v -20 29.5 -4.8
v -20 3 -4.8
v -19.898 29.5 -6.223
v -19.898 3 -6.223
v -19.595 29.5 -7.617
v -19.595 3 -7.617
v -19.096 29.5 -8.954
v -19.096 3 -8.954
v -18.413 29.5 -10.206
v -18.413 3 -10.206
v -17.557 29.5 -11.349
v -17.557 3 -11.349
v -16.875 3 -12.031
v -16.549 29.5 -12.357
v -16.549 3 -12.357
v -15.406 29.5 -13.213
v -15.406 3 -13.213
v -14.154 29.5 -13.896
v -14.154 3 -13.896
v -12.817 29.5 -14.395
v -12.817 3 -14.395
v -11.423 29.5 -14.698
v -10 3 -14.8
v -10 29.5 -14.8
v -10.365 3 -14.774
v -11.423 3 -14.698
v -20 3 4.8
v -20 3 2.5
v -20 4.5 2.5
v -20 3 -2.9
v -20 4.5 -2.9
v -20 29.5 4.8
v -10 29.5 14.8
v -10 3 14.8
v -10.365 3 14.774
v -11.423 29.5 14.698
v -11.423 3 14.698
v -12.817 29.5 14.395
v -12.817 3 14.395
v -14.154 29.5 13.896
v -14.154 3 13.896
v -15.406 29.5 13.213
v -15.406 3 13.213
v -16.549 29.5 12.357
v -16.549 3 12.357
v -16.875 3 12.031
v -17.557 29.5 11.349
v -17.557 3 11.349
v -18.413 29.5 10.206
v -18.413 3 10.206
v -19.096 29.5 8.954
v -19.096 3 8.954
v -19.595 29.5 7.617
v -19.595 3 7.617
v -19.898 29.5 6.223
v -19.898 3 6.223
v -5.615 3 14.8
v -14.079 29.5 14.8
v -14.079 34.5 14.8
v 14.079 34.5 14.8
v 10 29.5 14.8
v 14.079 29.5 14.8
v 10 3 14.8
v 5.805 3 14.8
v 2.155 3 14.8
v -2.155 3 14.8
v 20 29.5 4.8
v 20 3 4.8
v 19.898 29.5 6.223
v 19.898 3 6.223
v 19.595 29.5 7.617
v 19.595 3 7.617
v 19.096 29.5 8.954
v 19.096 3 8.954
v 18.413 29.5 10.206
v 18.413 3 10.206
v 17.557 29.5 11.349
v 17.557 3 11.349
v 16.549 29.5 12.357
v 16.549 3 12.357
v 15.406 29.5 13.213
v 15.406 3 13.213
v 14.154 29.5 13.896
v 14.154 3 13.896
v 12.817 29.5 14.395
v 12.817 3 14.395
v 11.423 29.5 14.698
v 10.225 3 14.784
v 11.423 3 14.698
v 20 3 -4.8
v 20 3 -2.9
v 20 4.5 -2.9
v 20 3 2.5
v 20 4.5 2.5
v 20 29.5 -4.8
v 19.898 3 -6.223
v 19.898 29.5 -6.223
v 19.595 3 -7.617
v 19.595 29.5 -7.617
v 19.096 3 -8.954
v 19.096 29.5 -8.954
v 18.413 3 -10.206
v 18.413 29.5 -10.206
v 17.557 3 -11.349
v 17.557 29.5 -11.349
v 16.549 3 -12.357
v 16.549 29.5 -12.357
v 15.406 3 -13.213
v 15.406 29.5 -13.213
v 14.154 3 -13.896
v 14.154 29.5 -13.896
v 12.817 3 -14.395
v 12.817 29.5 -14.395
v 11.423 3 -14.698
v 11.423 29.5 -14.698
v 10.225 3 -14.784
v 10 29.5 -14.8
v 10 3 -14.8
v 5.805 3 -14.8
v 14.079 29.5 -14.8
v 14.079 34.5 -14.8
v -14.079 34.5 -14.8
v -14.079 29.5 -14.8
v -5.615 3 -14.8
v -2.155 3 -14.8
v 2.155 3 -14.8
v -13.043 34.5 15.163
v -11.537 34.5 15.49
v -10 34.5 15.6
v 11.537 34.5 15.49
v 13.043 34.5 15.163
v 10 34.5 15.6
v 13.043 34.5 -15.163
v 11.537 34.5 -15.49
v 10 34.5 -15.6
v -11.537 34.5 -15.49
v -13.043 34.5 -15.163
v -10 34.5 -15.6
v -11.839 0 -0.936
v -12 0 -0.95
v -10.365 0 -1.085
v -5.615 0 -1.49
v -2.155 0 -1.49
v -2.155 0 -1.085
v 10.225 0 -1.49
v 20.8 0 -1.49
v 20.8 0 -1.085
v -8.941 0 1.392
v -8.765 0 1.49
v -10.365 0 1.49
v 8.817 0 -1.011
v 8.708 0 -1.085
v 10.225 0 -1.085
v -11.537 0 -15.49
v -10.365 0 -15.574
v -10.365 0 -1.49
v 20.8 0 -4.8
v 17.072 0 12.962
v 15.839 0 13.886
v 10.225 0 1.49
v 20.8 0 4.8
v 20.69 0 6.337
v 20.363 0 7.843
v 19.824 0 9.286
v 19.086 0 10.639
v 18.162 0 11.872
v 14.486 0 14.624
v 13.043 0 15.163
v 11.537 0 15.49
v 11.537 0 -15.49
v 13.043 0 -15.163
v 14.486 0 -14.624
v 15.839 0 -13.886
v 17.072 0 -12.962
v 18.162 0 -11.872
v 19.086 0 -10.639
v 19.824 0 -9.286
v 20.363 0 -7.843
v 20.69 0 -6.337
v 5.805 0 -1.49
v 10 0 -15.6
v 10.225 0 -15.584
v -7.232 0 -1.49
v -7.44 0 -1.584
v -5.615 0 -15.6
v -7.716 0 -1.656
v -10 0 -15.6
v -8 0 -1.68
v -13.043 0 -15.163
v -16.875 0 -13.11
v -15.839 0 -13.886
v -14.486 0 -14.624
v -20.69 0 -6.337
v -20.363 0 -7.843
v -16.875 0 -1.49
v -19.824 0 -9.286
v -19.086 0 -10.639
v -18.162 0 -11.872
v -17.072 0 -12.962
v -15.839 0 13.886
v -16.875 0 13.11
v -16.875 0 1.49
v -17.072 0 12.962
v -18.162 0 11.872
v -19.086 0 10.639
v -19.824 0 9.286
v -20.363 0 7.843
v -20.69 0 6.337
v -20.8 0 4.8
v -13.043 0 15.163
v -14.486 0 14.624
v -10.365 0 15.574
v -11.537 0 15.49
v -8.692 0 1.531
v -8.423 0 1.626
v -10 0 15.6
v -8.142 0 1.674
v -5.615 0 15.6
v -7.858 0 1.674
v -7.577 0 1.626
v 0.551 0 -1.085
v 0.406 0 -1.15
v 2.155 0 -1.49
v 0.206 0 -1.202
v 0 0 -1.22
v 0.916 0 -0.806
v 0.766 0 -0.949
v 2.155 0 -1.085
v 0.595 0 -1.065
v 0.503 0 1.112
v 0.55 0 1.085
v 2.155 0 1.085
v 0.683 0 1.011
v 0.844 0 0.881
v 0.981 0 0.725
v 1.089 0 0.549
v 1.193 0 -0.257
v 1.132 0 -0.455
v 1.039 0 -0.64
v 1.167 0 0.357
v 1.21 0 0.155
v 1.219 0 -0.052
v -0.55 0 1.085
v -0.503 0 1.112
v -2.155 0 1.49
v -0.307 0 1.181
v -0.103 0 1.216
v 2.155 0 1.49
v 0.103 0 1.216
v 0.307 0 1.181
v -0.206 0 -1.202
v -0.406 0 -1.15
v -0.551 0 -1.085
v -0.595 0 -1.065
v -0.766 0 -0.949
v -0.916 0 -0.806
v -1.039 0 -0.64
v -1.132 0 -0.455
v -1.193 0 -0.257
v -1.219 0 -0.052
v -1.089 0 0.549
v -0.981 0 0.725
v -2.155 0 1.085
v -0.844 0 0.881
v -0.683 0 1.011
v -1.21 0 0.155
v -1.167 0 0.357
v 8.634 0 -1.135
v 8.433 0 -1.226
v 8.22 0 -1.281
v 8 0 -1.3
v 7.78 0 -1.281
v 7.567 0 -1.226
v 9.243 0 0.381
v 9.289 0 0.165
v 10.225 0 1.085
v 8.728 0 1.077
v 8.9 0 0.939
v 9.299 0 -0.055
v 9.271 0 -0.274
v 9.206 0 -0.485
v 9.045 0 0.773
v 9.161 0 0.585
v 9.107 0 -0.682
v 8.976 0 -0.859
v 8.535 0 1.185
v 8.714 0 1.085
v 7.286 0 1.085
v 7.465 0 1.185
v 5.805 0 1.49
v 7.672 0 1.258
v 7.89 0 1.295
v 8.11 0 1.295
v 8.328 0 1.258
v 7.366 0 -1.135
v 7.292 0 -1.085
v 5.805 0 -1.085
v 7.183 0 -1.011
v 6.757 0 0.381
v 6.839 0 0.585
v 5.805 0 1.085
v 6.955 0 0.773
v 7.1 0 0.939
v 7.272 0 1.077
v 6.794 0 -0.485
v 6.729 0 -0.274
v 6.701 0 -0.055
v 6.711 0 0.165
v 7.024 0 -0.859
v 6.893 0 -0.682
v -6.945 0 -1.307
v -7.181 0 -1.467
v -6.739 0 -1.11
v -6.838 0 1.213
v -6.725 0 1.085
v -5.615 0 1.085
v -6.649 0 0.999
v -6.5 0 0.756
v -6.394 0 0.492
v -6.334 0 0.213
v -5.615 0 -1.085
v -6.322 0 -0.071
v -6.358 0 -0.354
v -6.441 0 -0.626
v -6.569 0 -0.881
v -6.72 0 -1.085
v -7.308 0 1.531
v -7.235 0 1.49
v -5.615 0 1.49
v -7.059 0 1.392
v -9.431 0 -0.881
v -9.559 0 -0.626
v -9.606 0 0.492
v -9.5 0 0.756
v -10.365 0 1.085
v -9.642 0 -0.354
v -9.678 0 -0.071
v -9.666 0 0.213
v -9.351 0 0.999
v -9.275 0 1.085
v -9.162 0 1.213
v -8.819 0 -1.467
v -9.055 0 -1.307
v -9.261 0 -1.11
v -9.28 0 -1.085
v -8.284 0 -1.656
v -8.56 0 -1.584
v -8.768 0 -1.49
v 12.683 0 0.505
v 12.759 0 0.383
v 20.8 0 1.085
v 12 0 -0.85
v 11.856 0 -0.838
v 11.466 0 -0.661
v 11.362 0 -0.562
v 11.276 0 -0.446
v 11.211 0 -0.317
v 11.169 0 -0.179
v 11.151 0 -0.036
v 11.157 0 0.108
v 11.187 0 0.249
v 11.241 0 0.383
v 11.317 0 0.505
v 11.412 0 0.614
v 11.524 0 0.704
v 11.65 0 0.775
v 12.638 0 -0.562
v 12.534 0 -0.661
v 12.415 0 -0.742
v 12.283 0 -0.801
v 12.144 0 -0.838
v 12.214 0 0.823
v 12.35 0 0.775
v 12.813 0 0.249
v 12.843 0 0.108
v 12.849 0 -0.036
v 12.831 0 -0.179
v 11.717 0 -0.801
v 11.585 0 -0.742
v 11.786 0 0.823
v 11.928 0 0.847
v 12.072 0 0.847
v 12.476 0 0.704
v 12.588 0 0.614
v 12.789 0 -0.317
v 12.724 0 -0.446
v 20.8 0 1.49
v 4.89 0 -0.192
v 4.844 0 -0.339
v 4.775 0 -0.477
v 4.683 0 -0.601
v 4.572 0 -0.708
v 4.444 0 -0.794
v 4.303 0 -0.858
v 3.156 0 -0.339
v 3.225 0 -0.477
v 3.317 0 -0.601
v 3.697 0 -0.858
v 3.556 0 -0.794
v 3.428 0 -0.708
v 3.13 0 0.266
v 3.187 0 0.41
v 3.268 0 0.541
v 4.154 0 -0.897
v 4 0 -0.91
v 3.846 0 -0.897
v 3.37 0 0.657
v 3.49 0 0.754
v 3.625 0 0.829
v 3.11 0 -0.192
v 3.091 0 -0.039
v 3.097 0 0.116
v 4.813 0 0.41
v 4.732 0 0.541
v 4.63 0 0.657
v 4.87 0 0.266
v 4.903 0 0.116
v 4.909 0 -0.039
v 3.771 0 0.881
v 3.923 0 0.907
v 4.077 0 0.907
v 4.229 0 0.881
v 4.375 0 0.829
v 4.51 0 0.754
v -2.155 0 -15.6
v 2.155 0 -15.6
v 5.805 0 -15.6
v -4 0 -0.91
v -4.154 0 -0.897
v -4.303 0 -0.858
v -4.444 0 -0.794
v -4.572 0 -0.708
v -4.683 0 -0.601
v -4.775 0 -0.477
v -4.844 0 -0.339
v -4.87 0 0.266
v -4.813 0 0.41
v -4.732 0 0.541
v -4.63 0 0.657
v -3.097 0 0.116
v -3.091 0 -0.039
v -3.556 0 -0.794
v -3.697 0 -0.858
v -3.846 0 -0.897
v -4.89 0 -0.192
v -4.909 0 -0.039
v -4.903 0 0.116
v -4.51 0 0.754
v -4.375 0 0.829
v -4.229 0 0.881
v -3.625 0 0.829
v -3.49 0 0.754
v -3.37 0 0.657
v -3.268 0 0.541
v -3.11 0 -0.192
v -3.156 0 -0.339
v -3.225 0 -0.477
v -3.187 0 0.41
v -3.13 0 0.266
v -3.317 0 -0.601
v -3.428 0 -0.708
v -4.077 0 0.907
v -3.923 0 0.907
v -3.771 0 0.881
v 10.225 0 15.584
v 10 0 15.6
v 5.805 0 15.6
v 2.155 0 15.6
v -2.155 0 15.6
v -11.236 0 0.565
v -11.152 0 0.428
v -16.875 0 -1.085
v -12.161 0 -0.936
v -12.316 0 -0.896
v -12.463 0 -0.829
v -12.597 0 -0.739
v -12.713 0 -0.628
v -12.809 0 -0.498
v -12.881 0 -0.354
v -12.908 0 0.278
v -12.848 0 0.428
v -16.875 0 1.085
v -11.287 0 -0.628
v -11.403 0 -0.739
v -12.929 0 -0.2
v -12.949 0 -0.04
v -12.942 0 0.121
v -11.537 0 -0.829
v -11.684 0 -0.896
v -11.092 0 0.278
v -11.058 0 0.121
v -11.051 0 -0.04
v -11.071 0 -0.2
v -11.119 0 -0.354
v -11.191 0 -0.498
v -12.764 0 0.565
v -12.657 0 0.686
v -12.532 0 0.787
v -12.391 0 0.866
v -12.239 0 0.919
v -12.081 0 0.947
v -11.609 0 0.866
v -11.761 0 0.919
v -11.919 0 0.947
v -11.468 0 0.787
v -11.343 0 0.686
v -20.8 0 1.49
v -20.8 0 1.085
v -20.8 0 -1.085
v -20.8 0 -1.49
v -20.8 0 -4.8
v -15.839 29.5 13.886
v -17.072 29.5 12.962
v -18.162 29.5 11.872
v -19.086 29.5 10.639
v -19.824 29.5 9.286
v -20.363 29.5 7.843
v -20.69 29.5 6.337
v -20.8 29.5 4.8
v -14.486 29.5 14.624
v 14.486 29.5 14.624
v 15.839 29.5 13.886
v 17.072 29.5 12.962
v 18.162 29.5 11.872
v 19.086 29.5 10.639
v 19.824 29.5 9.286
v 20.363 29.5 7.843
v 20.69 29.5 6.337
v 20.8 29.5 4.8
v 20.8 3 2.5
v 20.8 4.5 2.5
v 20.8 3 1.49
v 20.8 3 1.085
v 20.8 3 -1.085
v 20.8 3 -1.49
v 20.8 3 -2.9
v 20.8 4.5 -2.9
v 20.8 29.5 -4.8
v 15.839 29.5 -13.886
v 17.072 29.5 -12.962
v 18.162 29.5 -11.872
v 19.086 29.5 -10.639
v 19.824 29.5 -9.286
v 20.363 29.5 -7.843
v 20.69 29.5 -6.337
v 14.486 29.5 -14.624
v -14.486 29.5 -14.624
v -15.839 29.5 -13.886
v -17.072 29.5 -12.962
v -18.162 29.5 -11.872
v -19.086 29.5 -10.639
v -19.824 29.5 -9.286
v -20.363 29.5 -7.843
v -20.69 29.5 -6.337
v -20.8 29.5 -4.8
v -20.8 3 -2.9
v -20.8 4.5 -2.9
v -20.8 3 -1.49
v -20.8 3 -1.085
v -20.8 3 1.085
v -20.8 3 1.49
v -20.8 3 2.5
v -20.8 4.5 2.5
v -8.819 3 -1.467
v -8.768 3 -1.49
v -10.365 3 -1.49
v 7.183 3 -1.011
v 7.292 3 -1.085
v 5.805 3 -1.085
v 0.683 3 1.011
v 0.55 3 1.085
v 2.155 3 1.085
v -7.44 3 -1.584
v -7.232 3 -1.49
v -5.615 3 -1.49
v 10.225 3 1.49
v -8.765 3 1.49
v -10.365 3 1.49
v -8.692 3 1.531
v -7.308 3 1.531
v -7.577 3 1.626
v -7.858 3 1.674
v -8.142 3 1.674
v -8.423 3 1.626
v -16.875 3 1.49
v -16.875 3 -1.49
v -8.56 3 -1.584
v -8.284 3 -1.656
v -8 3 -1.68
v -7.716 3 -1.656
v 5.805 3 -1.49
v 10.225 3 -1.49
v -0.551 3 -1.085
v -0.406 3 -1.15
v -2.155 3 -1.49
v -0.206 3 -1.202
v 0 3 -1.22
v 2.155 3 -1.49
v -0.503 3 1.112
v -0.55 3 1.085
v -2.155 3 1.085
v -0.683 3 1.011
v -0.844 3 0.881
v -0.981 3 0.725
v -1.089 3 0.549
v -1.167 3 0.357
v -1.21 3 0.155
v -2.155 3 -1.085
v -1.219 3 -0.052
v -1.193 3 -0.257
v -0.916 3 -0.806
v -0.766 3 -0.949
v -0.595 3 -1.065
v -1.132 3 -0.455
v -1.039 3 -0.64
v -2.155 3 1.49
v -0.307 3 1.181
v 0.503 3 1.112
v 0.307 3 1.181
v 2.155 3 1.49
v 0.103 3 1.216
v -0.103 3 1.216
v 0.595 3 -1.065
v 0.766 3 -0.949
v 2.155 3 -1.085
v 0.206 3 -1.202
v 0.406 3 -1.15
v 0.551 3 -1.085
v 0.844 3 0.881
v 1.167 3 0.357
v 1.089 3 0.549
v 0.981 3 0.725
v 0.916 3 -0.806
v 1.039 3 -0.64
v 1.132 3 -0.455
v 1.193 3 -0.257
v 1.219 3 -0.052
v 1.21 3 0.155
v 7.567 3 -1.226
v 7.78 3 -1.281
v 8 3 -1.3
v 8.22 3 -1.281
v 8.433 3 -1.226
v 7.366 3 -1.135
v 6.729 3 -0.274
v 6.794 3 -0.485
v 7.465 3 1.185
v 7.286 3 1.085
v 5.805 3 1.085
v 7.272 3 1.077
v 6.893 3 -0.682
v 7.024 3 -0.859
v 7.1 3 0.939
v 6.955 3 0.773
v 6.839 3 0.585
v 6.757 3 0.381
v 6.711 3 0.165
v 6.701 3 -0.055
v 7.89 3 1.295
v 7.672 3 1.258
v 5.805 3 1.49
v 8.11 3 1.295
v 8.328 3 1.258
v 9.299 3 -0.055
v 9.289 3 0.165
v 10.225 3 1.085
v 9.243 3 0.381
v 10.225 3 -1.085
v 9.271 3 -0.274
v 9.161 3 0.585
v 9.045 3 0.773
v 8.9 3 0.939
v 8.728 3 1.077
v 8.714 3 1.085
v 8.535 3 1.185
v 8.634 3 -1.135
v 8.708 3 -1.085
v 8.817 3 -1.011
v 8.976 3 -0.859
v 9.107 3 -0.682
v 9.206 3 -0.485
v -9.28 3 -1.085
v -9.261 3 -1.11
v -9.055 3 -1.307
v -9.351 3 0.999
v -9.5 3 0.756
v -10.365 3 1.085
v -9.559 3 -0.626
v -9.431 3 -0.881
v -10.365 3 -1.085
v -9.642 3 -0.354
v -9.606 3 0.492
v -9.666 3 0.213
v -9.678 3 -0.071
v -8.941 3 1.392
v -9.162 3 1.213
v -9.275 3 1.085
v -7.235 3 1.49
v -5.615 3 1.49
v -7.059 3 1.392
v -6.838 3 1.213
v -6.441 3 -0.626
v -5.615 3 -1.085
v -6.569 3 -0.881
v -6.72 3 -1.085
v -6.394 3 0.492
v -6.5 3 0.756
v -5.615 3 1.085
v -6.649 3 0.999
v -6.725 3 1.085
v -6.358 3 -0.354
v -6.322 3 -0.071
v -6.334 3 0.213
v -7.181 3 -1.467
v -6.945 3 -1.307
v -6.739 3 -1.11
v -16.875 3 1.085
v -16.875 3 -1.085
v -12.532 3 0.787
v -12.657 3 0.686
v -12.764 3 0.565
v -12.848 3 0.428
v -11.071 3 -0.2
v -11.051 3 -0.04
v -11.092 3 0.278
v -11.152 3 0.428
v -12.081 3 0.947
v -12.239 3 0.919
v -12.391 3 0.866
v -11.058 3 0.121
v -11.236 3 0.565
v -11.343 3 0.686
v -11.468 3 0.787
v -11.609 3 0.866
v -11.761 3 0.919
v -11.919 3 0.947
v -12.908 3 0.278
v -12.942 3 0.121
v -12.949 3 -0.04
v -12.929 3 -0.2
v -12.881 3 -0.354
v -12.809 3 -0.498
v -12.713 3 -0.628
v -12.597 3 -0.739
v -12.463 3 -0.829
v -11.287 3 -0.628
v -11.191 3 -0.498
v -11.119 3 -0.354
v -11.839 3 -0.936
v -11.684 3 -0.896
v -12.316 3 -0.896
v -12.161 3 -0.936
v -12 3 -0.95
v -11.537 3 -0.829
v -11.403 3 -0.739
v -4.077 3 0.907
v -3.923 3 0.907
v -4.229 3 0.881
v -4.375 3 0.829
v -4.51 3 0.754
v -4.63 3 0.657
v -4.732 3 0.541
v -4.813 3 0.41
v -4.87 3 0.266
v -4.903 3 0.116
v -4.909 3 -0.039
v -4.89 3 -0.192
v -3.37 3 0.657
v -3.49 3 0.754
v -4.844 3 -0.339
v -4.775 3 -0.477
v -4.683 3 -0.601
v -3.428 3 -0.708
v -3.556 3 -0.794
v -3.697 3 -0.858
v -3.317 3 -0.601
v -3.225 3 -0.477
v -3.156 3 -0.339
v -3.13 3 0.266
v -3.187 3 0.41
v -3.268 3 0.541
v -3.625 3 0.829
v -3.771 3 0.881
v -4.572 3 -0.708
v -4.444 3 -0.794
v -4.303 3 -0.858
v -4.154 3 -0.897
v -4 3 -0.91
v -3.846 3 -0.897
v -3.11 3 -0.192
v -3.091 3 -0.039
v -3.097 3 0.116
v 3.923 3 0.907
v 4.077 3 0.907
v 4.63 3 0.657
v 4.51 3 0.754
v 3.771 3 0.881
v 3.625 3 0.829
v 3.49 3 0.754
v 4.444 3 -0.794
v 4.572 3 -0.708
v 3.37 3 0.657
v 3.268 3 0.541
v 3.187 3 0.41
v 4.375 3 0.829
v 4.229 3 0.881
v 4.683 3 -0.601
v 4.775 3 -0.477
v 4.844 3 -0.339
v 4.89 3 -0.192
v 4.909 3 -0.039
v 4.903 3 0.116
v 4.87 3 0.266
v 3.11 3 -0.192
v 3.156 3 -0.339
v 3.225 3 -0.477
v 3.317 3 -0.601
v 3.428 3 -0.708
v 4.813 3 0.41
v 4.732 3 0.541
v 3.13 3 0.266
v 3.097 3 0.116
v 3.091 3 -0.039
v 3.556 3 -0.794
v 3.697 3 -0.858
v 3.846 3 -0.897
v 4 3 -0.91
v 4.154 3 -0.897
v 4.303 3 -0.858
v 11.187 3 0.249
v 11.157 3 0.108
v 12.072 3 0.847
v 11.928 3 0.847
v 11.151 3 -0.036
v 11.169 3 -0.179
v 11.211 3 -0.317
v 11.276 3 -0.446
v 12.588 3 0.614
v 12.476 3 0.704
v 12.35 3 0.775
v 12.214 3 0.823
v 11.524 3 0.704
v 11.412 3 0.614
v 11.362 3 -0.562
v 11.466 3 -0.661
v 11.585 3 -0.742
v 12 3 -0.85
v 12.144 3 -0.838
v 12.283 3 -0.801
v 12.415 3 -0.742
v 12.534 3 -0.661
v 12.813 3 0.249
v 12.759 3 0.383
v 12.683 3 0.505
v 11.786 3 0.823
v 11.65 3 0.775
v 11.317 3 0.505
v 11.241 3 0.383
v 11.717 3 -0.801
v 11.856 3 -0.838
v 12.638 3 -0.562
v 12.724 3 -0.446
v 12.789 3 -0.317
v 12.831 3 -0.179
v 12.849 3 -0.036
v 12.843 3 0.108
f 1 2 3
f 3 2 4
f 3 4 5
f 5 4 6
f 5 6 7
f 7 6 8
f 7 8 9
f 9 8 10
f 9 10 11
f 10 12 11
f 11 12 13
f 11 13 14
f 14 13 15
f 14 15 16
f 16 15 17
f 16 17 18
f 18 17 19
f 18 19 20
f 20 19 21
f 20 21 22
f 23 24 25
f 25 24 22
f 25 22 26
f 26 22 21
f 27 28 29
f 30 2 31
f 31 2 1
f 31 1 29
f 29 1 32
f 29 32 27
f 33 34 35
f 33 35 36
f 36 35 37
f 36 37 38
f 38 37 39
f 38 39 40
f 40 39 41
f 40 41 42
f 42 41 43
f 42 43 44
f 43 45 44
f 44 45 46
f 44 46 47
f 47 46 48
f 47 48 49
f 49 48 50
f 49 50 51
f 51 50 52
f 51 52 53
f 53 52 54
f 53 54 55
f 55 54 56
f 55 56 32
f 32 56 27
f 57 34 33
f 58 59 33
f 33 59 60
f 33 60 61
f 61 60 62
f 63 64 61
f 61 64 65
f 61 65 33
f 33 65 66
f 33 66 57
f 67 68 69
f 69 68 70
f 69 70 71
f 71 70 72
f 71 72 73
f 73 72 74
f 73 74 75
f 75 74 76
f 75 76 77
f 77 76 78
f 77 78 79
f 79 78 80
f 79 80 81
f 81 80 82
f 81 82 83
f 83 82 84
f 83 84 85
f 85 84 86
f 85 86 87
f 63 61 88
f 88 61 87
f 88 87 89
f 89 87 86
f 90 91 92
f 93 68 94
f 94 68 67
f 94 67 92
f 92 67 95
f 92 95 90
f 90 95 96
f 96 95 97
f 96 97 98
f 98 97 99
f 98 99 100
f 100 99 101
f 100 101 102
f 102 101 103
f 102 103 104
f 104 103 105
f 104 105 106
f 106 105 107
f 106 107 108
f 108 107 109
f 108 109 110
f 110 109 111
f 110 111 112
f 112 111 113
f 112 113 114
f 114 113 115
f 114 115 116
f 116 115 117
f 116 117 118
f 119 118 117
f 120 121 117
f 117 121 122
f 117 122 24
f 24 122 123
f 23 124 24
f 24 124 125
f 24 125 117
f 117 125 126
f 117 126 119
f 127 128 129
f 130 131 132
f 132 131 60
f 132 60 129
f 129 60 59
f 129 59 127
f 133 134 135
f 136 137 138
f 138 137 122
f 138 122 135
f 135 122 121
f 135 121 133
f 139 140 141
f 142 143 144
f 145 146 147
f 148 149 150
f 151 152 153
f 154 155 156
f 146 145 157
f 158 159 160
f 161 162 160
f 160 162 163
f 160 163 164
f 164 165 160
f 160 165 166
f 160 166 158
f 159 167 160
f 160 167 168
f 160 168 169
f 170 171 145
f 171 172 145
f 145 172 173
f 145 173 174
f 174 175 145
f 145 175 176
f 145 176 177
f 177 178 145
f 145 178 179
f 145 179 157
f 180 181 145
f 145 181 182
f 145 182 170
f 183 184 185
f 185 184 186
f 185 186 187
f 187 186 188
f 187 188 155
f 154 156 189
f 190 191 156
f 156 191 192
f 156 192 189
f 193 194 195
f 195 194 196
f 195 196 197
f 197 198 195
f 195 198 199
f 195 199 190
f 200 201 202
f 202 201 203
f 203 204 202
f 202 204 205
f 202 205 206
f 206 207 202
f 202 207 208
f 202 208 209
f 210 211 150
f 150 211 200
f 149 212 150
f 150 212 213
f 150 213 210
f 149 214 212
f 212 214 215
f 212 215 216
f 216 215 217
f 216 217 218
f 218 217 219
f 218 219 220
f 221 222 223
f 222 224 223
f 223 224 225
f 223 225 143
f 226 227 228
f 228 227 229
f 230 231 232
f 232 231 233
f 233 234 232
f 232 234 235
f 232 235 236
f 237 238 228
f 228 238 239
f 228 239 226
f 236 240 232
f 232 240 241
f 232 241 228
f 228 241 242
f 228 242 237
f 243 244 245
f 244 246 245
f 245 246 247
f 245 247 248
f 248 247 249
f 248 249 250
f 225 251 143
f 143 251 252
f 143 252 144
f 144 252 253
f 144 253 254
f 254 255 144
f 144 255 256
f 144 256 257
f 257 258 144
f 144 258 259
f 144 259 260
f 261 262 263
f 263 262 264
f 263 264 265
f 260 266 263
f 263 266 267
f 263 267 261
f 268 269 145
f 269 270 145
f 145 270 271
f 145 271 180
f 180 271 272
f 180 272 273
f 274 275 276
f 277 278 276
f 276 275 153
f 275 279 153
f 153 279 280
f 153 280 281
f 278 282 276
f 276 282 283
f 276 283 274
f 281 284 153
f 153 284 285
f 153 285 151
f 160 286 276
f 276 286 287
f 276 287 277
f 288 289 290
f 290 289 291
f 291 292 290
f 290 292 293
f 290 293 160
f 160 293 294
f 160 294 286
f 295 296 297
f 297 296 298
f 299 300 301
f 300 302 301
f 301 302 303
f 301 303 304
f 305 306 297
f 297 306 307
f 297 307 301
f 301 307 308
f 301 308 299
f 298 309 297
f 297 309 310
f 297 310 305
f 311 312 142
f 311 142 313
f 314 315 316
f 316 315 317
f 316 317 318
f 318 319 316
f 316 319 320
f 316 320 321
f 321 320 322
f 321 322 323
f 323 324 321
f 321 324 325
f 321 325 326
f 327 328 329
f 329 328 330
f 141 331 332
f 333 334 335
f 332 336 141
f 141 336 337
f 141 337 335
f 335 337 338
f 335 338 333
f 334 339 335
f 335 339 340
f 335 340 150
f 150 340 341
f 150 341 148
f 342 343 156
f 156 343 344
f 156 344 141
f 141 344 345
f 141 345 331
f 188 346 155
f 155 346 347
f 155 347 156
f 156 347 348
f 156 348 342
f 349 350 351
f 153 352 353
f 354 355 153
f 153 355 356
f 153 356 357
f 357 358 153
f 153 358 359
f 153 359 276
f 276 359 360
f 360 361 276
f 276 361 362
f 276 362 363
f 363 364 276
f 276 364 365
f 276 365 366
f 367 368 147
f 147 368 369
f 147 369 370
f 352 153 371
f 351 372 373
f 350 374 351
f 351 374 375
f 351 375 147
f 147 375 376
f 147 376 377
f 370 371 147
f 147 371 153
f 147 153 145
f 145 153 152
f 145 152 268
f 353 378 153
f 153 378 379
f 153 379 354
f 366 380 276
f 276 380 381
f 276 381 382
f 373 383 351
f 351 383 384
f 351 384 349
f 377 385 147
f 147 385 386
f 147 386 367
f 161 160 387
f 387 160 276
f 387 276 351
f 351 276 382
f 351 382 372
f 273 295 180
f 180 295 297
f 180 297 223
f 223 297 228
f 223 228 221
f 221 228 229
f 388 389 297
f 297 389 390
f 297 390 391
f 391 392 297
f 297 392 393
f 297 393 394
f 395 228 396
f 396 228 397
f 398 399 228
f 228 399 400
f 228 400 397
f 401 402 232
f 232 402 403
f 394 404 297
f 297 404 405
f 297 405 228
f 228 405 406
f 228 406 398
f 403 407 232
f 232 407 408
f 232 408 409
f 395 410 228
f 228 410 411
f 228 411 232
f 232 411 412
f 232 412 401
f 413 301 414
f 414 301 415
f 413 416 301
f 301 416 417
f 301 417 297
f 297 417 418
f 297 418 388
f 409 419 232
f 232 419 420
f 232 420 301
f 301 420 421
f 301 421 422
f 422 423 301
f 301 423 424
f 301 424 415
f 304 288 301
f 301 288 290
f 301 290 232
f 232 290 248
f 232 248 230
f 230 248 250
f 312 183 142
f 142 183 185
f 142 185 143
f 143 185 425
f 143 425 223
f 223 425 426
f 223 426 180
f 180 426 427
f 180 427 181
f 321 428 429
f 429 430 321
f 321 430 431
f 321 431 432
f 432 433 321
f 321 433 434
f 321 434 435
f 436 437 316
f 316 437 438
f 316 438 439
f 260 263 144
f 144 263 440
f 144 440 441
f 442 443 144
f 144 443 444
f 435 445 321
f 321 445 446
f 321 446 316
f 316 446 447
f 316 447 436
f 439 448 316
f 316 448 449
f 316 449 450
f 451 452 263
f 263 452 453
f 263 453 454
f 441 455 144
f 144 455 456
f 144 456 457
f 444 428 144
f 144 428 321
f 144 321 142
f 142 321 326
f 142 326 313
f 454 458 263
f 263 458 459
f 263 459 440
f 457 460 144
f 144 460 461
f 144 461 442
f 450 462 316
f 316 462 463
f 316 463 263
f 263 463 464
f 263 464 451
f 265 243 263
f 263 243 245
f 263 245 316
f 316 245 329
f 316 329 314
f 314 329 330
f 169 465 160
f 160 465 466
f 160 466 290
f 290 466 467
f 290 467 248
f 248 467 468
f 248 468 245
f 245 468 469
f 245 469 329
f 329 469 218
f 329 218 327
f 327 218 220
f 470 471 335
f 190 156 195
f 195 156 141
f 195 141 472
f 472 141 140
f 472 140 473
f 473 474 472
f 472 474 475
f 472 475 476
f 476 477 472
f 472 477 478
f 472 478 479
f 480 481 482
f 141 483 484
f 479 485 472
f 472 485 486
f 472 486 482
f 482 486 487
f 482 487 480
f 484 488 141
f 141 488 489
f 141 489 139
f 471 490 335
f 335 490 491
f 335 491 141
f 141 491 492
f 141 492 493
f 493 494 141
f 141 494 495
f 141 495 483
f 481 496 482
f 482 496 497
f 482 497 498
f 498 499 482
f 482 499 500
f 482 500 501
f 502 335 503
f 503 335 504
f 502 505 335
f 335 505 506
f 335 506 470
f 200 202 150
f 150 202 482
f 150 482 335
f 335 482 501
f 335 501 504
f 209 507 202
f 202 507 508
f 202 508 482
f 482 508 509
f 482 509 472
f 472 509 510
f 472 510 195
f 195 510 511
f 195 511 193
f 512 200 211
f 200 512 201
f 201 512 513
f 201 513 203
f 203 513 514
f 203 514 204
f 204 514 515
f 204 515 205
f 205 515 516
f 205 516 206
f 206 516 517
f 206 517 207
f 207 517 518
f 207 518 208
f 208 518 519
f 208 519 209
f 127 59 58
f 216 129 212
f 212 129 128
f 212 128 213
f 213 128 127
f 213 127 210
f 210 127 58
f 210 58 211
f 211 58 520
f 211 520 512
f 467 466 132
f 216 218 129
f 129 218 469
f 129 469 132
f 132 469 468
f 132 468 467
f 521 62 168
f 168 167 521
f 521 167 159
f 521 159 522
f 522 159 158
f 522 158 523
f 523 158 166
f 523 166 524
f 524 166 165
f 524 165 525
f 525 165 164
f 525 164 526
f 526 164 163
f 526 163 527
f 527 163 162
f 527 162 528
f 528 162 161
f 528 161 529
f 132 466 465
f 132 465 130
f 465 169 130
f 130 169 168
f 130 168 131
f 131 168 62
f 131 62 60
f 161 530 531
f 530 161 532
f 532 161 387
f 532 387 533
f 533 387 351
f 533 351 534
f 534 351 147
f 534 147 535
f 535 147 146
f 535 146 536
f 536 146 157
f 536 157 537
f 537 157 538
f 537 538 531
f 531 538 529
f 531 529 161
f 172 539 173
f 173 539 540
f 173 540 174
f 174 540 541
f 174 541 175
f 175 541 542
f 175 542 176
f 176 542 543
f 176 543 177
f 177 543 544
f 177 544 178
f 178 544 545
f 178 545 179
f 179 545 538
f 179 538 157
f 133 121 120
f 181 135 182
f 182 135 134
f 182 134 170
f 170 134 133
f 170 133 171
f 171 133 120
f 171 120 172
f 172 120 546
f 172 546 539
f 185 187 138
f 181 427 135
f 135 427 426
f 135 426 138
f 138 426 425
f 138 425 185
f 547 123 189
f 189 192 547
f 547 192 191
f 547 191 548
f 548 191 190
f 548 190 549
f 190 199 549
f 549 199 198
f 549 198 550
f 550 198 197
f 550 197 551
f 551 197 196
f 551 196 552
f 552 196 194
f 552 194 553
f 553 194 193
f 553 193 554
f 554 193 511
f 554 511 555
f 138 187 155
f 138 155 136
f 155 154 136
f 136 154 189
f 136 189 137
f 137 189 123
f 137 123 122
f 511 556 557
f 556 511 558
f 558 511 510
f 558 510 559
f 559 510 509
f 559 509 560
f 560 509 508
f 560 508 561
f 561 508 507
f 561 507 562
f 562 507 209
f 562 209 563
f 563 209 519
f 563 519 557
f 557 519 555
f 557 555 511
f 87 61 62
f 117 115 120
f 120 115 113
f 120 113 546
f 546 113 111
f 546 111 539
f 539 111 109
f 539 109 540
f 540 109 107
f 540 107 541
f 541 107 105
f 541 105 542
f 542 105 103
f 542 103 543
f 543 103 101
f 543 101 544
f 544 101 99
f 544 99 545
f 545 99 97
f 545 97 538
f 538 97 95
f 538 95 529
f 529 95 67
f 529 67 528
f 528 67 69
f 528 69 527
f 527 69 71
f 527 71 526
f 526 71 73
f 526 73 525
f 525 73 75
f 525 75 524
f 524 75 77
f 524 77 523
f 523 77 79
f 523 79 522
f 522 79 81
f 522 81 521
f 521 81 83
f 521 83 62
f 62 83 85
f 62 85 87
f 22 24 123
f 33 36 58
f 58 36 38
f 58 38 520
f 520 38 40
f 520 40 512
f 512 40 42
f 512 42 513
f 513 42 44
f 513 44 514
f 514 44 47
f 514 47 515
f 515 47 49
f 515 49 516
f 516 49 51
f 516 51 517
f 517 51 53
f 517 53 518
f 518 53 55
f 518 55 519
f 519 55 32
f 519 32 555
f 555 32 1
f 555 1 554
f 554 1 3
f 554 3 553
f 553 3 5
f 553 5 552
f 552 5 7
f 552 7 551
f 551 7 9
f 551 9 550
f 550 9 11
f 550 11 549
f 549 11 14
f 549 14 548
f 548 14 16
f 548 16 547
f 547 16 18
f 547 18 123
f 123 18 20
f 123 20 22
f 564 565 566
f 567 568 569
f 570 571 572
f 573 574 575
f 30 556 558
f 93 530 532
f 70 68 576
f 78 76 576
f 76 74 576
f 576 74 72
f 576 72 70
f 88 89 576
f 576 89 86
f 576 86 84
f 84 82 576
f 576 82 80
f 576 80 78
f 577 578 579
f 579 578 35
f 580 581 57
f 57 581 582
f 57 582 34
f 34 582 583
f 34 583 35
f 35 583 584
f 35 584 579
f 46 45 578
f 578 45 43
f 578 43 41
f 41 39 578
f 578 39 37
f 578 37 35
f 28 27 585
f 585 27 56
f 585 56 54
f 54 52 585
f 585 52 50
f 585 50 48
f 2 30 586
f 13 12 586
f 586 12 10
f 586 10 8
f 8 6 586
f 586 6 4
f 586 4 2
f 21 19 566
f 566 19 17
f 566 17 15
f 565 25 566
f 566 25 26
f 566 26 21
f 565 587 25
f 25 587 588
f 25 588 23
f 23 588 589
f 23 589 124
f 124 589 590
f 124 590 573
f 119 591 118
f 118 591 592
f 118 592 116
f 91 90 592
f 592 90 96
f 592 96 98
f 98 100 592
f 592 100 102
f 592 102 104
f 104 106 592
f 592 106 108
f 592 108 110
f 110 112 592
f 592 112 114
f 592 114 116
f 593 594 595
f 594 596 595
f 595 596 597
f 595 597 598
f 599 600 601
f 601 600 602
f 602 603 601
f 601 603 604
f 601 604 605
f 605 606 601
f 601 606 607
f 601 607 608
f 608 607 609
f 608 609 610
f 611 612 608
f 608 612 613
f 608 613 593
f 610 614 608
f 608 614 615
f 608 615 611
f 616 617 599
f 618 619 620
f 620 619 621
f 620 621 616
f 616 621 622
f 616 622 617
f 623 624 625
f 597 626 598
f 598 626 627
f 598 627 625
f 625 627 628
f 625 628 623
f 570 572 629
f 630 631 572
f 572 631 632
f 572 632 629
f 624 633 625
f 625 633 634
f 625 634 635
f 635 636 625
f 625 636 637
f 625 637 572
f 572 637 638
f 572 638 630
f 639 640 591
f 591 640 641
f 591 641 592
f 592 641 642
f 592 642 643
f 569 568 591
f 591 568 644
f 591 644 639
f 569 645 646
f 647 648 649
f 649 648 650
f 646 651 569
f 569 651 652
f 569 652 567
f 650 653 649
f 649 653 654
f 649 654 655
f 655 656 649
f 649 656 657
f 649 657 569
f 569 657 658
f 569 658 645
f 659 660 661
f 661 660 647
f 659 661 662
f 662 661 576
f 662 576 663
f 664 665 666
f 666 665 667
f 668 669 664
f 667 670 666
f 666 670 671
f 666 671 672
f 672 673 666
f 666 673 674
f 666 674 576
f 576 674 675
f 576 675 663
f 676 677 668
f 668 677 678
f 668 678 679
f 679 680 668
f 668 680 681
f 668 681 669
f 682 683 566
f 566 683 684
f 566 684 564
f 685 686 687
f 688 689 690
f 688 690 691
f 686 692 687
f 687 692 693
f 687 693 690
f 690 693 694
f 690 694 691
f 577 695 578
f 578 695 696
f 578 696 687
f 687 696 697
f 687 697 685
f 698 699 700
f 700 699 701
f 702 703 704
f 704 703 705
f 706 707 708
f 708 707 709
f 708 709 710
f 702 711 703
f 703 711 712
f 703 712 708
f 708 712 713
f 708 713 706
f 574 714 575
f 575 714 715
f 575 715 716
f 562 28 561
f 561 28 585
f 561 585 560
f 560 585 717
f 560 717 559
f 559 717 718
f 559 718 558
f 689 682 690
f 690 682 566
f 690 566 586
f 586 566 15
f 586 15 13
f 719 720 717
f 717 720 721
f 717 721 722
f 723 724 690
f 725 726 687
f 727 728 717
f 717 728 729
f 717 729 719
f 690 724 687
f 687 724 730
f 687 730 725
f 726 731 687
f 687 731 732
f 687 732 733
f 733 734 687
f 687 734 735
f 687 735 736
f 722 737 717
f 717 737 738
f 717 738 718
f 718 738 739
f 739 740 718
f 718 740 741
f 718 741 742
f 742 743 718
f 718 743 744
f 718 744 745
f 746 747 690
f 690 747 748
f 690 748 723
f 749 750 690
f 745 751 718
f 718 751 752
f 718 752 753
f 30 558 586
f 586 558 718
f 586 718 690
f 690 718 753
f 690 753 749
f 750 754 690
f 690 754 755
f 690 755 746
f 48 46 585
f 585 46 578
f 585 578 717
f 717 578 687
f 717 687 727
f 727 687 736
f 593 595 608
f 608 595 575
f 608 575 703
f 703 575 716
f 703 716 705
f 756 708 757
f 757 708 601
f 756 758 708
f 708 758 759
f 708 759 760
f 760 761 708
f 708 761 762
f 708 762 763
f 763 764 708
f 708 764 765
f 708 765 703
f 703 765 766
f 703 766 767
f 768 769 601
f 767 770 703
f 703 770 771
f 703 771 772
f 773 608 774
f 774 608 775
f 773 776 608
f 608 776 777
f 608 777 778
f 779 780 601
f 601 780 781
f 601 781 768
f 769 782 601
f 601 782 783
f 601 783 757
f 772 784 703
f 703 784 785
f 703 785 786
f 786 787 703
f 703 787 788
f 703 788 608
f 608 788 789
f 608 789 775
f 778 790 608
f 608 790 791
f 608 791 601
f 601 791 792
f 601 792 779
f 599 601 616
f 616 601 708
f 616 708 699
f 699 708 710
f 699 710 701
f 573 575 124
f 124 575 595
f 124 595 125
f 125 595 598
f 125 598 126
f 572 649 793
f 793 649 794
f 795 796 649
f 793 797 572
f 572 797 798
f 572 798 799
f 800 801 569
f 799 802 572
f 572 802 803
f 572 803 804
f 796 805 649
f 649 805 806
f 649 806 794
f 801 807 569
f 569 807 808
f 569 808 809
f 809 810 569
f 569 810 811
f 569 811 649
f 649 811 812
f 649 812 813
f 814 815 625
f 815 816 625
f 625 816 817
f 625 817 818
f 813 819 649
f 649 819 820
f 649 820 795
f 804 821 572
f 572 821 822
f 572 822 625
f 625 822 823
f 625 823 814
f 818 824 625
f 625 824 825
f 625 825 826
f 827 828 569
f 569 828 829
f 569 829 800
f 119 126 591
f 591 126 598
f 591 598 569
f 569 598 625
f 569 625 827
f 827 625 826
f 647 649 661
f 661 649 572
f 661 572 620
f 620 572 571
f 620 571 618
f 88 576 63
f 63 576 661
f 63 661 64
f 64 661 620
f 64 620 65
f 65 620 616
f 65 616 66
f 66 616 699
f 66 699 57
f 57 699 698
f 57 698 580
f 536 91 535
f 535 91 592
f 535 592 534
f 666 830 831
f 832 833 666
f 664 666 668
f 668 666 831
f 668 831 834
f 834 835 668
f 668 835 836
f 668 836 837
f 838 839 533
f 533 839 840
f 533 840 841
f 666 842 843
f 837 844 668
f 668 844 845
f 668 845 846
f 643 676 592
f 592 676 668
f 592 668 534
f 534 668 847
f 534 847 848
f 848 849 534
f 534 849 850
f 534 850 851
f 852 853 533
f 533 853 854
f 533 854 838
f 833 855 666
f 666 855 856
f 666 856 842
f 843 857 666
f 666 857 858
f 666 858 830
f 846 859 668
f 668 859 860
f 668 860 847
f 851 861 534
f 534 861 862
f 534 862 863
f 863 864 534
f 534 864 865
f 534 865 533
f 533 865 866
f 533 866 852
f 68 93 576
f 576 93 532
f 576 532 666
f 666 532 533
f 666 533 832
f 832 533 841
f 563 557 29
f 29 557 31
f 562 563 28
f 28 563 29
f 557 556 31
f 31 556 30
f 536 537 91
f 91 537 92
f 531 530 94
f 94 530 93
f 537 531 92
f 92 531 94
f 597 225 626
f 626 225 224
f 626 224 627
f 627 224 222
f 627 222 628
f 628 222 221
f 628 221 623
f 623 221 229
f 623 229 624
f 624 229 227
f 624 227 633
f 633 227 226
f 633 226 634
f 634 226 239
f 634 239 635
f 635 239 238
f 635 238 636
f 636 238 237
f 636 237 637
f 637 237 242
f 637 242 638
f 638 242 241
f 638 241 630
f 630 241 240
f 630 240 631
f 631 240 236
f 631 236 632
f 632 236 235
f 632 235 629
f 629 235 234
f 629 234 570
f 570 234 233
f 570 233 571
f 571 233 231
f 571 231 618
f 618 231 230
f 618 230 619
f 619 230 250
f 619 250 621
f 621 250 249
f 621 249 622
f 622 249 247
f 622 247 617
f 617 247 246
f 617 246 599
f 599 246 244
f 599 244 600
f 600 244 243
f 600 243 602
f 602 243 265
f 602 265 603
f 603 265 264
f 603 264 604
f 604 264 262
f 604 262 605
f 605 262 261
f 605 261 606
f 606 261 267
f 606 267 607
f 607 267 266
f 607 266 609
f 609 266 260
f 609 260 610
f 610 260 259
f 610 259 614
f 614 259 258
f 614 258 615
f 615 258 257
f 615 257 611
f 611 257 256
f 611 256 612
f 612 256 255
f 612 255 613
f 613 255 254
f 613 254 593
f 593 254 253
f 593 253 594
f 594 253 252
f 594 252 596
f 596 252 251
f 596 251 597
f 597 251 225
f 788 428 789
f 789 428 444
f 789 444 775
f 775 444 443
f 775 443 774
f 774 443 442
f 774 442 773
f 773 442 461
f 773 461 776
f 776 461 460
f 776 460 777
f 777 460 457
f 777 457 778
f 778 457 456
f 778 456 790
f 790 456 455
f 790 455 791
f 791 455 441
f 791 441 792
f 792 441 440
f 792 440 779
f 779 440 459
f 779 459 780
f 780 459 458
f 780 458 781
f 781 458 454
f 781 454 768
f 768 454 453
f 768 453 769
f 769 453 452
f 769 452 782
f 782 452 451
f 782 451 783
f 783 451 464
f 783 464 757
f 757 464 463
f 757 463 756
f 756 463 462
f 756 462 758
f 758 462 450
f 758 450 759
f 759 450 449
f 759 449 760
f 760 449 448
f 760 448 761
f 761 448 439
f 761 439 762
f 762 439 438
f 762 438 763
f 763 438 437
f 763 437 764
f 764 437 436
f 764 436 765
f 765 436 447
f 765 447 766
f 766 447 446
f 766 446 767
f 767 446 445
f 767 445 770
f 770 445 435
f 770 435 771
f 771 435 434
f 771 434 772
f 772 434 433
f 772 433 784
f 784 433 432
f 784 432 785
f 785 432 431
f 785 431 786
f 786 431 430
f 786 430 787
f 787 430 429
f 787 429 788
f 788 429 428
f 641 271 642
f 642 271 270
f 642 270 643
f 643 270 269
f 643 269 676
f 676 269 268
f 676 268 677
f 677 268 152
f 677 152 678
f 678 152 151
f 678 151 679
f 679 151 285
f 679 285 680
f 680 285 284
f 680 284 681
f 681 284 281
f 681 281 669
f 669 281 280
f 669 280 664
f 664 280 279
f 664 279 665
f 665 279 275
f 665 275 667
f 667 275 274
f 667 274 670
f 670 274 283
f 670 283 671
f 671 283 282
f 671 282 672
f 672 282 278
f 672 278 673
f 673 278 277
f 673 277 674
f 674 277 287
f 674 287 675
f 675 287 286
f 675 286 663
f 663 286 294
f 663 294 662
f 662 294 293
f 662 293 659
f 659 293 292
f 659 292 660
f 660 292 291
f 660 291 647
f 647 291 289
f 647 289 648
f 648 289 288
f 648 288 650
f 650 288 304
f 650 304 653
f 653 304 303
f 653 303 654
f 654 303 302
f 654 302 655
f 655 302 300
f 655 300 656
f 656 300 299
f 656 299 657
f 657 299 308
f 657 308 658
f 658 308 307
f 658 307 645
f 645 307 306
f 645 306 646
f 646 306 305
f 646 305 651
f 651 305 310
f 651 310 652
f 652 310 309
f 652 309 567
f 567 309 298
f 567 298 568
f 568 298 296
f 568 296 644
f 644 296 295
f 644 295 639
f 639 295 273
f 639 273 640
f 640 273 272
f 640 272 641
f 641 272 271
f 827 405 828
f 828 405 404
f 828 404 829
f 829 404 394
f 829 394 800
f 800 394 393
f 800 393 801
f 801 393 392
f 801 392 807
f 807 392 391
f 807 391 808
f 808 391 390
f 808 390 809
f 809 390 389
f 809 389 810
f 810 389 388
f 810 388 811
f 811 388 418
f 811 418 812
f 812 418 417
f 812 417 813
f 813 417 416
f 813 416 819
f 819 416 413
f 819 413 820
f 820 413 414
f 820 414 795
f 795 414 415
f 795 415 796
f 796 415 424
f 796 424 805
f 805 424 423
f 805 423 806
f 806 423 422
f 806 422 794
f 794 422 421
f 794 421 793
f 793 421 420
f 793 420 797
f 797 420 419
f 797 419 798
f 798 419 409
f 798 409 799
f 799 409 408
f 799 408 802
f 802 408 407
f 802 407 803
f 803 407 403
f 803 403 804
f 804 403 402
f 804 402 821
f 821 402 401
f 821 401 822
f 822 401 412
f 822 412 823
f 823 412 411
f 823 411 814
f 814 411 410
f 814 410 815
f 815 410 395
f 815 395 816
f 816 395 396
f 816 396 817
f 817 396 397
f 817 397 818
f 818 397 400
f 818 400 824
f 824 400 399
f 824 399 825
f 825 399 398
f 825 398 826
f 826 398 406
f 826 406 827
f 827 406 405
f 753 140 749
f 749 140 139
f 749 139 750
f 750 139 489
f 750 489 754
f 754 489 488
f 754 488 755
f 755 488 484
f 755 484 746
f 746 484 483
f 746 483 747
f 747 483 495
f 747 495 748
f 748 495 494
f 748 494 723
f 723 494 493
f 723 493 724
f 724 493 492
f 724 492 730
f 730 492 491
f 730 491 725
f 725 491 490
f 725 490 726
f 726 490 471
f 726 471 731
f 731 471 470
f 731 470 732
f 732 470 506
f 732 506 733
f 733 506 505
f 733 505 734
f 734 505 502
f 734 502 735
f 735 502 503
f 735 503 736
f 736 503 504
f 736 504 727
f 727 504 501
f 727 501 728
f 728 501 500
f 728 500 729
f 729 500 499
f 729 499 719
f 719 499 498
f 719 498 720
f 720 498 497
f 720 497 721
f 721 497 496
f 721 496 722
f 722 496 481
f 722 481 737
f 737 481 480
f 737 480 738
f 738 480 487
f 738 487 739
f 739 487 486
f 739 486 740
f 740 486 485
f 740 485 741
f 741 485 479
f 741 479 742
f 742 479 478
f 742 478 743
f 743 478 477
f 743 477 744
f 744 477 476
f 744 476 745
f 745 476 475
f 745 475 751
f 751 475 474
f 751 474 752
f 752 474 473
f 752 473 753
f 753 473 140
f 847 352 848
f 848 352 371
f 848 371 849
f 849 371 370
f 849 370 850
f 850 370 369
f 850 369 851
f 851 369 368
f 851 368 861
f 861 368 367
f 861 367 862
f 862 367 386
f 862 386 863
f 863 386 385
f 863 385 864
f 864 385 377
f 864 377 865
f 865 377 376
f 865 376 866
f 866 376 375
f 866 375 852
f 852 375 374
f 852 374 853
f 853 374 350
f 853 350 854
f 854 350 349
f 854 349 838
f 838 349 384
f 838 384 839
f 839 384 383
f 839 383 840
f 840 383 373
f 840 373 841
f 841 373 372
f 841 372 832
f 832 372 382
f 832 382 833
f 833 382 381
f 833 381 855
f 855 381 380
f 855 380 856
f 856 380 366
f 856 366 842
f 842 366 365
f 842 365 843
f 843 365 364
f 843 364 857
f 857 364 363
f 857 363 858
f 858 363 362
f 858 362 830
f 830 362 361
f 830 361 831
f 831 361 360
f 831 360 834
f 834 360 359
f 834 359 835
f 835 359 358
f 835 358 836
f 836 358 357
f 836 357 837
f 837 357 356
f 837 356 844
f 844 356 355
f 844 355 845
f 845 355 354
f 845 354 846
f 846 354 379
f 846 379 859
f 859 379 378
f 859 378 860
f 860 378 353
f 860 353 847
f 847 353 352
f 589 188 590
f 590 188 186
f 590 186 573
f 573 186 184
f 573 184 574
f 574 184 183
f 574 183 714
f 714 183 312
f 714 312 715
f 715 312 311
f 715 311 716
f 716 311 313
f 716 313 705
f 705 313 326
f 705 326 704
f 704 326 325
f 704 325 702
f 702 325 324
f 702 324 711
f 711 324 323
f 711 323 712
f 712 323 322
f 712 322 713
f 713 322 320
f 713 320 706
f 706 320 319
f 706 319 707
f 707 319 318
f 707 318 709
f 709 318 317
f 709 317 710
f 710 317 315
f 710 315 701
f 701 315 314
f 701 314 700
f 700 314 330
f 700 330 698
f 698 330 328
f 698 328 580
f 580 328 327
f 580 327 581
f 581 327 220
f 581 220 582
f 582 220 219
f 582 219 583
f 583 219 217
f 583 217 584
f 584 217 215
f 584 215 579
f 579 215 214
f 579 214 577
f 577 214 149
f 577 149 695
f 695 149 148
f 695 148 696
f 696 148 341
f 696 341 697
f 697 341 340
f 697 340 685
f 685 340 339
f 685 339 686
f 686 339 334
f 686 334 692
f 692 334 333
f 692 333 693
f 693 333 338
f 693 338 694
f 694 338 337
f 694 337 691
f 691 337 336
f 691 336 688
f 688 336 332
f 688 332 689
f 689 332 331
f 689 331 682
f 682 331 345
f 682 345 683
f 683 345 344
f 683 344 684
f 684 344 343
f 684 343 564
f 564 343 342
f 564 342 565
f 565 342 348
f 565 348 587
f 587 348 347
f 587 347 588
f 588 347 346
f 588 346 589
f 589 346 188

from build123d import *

# Parameters (mm, degrees)
EXTRUDE_1_DEPTH     = 34.5
SKETCH_4_W          = 41.6
SKETCH_4_H          = 29.6
CUT_EXTRUDE_1_DEPTH = 5
EXTRUDE_2_DEPTH     = 3
SKETCH_6_W          = 5.4
SKETCH_6_H          = 1.5
CUT_EXTRUDE_2_DEPTH = 57.250955547
SKETCH_7_R          = 1.22
SKETCH_7_R_2        = 0.91
SKETCH_7_R_3        = 1.3
SKETCH_7_R_4        = 1.68
SKETCH_7_R_5        = 0.95
SKETCH_7_R_6        = 0.85
CUT_EXTRUDE_3_DEPTH = 44.200115741


with BuildPart() as part:
    # 草圖1 → 填料-伸長1 (new body)
    with BuildSketch(Plane(origin=(0, 0, 0), x_dir=(1, 0, 0), z_dir=(0, 1, 0))):
        with BuildLine():
            Line((-10, -15.6), (10, -15.6))
            ThreePointArc((10, -15.6), (17.636753237, -12.436753237), (20.8, -4.8))
            Line((20.8, -4.8), (20.8, 4.8))
            ThreePointArc((20.8, 4.8), (17.636753237, 12.436753237), (10, 15.6))
            Line((10, 15.6), (-10, 15.6))
            ThreePointArc((-10, 15.6), (-17.636753237, 12.436753237), (-20.8, 4.8))
            Line((-20.8, 4.8), (-20.8, -4.8))
            ThreePointArc((-20.8, -4.8), (-17.636753237, -12.436753237), (-10, -15.6))
        make_face()
        with BuildLine():
            Line((-10, -14.8), (10, -14.8))
            ThreePointArc((10, -14.8), (17.071067812, -11.871067812), (20, -4.8))
            Line((20, -4.8), (20, 4.8))
            ThreePointArc((20, 4.8), (17.071067812, 11.871067812), (10, 14.8))
            Line((10, 14.8), (-10, 14.8))
            ThreePointArc((-10, 14.8), (-17.071067812, 11.871067812), (-20, 4.8))
            Line((-20, 4.8), (-20, -4.8))
            ThreePointArc((-20, -4.8), (-17.071067812, -11.871067812), (-10, -14.8))
        make_face(mode=Mode.SUBTRACT)
    extrude(amount=EXTRUDE_1_DEPTH)

    # 草圖4 → 除料-伸長1 (cut)
    with BuildSketch(Plane(origin=(0, 34.5, 0), x_dir=(1, 0, 0), z_dir=(0, 1, 0))):
        Rectangle(SKETCH_4_W, SKETCH_4_H)
    extrude(amount=-CUT_EXTRUDE_1_DEPTH, mode=Mode.SUBTRACT)

    # 草圖5 → 填料-伸長2 (add)
    with BuildSketch(Plane.XZ):
        with BuildLine():
            Line((20, 4.8), (20, -4.8))
            ThreePointArc((20, -4.8), (17.071067812, -11.871067812), (10, -14.8))
            Line((10, -14.8), (-10, -14.8))
            ThreePointArc((-10, -14.8), (-17.071067812, -11.871067812), (-20, -4.8))
            Line((-20, -4.8), (-20, 4.8))
            ThreePointArc((-20, 4.8), (-17.071067812, 11.871067812), (-10, 14.8))
            Line((-10, 14.8), (10, 14.8))
            ThreePointArc((10, 14.8), (17.071067812, 11.871067812), (20, 4.8))
        make_face()
    extrude(amount=-EXTRUDE_2_DEPTH)

    # 草圖6 → 除料-伸長2 (cut, through all)
    with BuildSketch(Plane(origin=(20.8, 0, 0), x_dir=(0, 0, -1), z_dir=(1, 0, 0))):
        with Locations((0.2, 3.75)):
            Rectangle(SKETCH_6_W, SKETCH_6_H)
    extrude(amount=-CUT_EXTRUDE_2_DEPTH, mode=Mode.SUBTRACT)

    # 草圖7 → 除料-伸長3 (cut, through all)
    with BuildSketch(Plane.XZ):
        with Locations(Location((0, 0, 0), (0, 0, 270))):
            Circle(SKETCH_7_R)
        with Locations(Location((4, 0, 0), (0, 0, 270))):
            Circle(SKETCH_7_R_2)
        with Locations(Location((8, 0, 0), (0, 0, 270))):
            Circle(SKETCH_7_R_3)
        with Locations(Location((-4, 0, 0), (0, 0, 270))):
            Circle(SKETCH_7_R_2)
        with Locations(Location((-8, 0, 0), (0, 0, 270))):
            Circle(SKETCH_7_R_4)
        with Locations(Location((-12, 0, 0), (0, 0, 270))):
            Circle(SKETCH_7_R_5)
        with Locations(Location((12, 0, 0), (0, 0, 270))):
            Circle(SKETCH_7_R_6)
    extrude(amount=-CUT_EXTRUDE_3_DEPTH, mode=Mode.SUBTRACT)


solid = part.part
